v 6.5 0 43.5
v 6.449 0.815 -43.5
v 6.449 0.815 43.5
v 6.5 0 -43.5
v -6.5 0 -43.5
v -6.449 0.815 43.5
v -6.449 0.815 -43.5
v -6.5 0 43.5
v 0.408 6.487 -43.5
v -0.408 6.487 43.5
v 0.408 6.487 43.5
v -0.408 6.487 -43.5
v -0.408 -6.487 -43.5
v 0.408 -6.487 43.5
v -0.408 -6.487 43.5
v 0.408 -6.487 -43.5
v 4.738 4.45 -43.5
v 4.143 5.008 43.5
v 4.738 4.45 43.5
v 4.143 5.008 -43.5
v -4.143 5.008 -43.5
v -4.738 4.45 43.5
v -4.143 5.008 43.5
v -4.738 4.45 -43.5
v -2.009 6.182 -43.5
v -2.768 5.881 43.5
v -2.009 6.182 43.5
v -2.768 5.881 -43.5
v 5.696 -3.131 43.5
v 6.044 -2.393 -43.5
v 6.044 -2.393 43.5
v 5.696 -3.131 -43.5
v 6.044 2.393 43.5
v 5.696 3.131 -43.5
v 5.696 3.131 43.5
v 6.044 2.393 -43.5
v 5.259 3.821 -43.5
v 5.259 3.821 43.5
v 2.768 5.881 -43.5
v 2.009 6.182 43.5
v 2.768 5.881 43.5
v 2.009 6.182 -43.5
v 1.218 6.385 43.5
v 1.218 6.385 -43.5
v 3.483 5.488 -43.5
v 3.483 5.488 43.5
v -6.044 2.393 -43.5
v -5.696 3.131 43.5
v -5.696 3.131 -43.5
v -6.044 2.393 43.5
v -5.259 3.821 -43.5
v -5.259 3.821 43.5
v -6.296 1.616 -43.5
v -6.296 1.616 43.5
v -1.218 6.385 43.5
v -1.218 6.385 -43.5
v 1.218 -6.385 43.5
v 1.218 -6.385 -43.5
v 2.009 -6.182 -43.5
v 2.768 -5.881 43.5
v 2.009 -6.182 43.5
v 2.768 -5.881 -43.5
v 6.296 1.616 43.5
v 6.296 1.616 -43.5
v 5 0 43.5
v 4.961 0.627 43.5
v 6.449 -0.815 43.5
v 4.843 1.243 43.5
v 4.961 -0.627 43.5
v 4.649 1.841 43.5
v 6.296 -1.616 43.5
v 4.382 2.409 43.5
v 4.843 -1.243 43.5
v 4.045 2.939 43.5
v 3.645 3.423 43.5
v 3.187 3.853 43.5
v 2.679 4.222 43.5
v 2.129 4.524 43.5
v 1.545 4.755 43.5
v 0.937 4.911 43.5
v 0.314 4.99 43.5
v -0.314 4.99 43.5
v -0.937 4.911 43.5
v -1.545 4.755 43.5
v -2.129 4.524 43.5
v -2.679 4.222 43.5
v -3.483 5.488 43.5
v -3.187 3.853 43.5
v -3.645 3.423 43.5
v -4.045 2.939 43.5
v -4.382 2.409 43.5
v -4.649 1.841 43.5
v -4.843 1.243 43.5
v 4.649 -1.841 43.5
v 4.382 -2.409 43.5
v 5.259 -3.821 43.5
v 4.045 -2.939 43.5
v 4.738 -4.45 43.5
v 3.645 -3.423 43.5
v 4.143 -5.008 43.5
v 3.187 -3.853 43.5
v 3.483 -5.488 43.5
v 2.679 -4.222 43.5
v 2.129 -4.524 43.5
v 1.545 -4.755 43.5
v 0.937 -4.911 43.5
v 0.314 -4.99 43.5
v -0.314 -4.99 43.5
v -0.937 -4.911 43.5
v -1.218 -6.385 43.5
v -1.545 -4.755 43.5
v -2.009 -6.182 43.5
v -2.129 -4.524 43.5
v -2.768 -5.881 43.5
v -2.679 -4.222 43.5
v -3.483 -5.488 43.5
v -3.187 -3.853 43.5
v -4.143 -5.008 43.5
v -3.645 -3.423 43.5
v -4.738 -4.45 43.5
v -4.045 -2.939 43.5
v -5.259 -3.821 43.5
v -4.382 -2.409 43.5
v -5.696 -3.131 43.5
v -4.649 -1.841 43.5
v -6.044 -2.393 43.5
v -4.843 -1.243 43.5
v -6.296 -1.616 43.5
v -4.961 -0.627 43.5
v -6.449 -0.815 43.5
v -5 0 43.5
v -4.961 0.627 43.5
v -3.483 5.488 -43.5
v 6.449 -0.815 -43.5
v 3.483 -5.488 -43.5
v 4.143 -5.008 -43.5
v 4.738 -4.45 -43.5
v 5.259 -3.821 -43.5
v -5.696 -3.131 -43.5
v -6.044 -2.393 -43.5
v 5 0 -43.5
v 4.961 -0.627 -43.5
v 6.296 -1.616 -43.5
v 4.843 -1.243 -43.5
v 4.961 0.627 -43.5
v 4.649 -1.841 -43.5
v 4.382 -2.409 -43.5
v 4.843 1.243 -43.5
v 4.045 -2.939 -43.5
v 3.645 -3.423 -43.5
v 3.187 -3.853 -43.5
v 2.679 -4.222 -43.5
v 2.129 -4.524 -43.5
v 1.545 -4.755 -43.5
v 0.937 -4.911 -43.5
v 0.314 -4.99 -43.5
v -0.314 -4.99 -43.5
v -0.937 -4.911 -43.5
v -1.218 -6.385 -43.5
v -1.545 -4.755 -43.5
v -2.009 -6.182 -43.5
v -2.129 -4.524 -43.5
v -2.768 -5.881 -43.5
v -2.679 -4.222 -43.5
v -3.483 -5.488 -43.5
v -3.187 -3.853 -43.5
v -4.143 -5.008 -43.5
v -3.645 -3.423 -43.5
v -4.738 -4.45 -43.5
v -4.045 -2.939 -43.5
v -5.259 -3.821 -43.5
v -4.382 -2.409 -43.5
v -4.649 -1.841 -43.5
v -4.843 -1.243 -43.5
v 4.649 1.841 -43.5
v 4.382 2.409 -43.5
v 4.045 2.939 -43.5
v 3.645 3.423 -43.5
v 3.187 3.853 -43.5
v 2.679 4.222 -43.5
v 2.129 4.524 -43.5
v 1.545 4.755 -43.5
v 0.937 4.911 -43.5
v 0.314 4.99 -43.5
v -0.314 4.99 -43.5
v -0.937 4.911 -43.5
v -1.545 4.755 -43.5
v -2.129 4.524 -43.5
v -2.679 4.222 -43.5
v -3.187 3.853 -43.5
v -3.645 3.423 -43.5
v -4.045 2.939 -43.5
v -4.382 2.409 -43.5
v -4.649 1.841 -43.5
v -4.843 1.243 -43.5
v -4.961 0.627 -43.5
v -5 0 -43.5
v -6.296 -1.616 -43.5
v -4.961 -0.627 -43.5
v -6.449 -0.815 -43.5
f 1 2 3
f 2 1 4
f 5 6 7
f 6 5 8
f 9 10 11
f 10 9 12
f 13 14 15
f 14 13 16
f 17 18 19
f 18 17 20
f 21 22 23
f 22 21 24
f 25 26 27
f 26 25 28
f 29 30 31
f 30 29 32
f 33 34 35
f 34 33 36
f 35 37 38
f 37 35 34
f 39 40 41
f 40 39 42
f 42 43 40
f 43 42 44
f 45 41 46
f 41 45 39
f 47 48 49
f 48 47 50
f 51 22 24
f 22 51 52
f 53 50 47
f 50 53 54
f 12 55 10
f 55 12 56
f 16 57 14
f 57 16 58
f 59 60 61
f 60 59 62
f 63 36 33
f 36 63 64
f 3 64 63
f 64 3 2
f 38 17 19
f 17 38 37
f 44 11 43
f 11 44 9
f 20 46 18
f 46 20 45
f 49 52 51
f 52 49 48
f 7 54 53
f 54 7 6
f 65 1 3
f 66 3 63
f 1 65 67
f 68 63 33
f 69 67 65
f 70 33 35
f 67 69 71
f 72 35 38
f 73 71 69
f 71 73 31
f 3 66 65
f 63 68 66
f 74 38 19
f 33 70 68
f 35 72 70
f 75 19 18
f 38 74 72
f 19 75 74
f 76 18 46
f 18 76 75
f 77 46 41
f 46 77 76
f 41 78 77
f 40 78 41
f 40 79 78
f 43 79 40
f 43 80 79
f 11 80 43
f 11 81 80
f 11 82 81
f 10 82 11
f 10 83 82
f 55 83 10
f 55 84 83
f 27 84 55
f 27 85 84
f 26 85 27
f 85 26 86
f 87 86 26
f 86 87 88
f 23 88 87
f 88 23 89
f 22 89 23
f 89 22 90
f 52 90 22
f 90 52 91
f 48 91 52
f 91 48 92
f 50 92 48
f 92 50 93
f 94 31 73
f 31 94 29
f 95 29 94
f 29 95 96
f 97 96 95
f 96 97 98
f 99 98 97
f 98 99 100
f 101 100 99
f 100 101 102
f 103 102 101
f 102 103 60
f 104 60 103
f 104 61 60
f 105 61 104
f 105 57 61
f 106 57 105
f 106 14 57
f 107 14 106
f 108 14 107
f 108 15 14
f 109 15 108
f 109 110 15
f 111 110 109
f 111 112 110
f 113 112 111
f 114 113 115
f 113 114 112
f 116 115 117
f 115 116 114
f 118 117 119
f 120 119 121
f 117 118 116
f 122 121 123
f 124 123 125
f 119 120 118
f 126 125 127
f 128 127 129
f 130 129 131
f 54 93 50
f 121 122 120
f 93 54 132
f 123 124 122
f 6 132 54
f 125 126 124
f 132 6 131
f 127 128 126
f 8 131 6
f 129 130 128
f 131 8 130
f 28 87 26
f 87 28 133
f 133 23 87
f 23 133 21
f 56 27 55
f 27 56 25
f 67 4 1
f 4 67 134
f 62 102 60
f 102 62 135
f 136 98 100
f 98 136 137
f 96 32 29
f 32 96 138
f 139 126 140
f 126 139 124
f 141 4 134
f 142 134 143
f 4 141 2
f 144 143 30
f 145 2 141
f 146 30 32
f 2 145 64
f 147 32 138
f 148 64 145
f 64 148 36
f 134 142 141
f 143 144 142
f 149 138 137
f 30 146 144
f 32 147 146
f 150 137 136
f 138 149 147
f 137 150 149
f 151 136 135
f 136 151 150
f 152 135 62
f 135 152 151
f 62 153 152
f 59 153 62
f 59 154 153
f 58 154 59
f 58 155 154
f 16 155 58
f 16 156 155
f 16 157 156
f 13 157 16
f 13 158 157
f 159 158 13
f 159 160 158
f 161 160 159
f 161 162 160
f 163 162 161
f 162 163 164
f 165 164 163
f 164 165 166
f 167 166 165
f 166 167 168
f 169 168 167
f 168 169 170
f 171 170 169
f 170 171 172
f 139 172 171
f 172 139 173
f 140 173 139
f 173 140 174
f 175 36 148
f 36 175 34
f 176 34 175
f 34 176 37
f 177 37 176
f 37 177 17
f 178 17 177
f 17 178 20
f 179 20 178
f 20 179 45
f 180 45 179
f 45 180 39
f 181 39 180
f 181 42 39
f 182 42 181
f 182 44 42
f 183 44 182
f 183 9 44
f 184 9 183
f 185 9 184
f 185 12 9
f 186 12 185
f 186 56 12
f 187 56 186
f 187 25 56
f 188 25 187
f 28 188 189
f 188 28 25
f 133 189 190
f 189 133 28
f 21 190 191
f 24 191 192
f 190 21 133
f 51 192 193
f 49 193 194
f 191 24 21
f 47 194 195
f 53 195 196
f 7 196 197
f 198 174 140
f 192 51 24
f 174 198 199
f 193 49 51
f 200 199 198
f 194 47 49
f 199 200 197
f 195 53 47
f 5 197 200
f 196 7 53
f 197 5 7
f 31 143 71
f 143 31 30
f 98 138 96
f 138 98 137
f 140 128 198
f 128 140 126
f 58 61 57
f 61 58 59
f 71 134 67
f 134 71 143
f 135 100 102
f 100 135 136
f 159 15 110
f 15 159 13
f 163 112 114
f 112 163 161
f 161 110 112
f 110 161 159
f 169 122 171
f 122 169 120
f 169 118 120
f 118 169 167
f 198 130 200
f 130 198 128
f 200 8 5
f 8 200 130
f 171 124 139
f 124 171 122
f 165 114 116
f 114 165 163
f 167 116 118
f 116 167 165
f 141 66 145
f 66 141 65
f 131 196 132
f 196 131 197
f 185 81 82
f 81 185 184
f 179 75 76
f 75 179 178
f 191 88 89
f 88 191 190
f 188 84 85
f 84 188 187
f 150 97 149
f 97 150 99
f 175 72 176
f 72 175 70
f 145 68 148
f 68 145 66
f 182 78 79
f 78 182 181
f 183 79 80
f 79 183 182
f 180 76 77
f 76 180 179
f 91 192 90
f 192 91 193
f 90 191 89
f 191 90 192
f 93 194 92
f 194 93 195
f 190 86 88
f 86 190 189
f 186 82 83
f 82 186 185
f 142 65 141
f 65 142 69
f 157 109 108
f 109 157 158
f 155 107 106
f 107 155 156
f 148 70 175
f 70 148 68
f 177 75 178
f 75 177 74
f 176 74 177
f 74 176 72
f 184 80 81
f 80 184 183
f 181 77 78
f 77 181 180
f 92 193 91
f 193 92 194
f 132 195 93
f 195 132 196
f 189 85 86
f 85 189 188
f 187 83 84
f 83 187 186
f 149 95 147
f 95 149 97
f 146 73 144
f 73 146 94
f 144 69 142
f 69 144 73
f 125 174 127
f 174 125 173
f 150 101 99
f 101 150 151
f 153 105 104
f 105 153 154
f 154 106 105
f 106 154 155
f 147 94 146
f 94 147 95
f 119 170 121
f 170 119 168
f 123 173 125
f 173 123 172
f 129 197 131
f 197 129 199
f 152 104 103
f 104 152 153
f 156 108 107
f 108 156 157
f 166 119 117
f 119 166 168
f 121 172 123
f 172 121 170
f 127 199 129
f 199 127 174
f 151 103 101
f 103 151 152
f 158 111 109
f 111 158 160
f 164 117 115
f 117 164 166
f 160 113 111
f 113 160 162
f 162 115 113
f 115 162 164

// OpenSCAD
$fn = 50;


difference() {
	union() {
		translate(v = [0, 0, -43.5000000000]) {
			cylinder(h = 87, r = 6.5000000000);
		}
	}
	union() {
		translate(v = [0, 0, -100.0000000000]) {
			cylinder(h = 200, r = 5);
		}
	}
}
